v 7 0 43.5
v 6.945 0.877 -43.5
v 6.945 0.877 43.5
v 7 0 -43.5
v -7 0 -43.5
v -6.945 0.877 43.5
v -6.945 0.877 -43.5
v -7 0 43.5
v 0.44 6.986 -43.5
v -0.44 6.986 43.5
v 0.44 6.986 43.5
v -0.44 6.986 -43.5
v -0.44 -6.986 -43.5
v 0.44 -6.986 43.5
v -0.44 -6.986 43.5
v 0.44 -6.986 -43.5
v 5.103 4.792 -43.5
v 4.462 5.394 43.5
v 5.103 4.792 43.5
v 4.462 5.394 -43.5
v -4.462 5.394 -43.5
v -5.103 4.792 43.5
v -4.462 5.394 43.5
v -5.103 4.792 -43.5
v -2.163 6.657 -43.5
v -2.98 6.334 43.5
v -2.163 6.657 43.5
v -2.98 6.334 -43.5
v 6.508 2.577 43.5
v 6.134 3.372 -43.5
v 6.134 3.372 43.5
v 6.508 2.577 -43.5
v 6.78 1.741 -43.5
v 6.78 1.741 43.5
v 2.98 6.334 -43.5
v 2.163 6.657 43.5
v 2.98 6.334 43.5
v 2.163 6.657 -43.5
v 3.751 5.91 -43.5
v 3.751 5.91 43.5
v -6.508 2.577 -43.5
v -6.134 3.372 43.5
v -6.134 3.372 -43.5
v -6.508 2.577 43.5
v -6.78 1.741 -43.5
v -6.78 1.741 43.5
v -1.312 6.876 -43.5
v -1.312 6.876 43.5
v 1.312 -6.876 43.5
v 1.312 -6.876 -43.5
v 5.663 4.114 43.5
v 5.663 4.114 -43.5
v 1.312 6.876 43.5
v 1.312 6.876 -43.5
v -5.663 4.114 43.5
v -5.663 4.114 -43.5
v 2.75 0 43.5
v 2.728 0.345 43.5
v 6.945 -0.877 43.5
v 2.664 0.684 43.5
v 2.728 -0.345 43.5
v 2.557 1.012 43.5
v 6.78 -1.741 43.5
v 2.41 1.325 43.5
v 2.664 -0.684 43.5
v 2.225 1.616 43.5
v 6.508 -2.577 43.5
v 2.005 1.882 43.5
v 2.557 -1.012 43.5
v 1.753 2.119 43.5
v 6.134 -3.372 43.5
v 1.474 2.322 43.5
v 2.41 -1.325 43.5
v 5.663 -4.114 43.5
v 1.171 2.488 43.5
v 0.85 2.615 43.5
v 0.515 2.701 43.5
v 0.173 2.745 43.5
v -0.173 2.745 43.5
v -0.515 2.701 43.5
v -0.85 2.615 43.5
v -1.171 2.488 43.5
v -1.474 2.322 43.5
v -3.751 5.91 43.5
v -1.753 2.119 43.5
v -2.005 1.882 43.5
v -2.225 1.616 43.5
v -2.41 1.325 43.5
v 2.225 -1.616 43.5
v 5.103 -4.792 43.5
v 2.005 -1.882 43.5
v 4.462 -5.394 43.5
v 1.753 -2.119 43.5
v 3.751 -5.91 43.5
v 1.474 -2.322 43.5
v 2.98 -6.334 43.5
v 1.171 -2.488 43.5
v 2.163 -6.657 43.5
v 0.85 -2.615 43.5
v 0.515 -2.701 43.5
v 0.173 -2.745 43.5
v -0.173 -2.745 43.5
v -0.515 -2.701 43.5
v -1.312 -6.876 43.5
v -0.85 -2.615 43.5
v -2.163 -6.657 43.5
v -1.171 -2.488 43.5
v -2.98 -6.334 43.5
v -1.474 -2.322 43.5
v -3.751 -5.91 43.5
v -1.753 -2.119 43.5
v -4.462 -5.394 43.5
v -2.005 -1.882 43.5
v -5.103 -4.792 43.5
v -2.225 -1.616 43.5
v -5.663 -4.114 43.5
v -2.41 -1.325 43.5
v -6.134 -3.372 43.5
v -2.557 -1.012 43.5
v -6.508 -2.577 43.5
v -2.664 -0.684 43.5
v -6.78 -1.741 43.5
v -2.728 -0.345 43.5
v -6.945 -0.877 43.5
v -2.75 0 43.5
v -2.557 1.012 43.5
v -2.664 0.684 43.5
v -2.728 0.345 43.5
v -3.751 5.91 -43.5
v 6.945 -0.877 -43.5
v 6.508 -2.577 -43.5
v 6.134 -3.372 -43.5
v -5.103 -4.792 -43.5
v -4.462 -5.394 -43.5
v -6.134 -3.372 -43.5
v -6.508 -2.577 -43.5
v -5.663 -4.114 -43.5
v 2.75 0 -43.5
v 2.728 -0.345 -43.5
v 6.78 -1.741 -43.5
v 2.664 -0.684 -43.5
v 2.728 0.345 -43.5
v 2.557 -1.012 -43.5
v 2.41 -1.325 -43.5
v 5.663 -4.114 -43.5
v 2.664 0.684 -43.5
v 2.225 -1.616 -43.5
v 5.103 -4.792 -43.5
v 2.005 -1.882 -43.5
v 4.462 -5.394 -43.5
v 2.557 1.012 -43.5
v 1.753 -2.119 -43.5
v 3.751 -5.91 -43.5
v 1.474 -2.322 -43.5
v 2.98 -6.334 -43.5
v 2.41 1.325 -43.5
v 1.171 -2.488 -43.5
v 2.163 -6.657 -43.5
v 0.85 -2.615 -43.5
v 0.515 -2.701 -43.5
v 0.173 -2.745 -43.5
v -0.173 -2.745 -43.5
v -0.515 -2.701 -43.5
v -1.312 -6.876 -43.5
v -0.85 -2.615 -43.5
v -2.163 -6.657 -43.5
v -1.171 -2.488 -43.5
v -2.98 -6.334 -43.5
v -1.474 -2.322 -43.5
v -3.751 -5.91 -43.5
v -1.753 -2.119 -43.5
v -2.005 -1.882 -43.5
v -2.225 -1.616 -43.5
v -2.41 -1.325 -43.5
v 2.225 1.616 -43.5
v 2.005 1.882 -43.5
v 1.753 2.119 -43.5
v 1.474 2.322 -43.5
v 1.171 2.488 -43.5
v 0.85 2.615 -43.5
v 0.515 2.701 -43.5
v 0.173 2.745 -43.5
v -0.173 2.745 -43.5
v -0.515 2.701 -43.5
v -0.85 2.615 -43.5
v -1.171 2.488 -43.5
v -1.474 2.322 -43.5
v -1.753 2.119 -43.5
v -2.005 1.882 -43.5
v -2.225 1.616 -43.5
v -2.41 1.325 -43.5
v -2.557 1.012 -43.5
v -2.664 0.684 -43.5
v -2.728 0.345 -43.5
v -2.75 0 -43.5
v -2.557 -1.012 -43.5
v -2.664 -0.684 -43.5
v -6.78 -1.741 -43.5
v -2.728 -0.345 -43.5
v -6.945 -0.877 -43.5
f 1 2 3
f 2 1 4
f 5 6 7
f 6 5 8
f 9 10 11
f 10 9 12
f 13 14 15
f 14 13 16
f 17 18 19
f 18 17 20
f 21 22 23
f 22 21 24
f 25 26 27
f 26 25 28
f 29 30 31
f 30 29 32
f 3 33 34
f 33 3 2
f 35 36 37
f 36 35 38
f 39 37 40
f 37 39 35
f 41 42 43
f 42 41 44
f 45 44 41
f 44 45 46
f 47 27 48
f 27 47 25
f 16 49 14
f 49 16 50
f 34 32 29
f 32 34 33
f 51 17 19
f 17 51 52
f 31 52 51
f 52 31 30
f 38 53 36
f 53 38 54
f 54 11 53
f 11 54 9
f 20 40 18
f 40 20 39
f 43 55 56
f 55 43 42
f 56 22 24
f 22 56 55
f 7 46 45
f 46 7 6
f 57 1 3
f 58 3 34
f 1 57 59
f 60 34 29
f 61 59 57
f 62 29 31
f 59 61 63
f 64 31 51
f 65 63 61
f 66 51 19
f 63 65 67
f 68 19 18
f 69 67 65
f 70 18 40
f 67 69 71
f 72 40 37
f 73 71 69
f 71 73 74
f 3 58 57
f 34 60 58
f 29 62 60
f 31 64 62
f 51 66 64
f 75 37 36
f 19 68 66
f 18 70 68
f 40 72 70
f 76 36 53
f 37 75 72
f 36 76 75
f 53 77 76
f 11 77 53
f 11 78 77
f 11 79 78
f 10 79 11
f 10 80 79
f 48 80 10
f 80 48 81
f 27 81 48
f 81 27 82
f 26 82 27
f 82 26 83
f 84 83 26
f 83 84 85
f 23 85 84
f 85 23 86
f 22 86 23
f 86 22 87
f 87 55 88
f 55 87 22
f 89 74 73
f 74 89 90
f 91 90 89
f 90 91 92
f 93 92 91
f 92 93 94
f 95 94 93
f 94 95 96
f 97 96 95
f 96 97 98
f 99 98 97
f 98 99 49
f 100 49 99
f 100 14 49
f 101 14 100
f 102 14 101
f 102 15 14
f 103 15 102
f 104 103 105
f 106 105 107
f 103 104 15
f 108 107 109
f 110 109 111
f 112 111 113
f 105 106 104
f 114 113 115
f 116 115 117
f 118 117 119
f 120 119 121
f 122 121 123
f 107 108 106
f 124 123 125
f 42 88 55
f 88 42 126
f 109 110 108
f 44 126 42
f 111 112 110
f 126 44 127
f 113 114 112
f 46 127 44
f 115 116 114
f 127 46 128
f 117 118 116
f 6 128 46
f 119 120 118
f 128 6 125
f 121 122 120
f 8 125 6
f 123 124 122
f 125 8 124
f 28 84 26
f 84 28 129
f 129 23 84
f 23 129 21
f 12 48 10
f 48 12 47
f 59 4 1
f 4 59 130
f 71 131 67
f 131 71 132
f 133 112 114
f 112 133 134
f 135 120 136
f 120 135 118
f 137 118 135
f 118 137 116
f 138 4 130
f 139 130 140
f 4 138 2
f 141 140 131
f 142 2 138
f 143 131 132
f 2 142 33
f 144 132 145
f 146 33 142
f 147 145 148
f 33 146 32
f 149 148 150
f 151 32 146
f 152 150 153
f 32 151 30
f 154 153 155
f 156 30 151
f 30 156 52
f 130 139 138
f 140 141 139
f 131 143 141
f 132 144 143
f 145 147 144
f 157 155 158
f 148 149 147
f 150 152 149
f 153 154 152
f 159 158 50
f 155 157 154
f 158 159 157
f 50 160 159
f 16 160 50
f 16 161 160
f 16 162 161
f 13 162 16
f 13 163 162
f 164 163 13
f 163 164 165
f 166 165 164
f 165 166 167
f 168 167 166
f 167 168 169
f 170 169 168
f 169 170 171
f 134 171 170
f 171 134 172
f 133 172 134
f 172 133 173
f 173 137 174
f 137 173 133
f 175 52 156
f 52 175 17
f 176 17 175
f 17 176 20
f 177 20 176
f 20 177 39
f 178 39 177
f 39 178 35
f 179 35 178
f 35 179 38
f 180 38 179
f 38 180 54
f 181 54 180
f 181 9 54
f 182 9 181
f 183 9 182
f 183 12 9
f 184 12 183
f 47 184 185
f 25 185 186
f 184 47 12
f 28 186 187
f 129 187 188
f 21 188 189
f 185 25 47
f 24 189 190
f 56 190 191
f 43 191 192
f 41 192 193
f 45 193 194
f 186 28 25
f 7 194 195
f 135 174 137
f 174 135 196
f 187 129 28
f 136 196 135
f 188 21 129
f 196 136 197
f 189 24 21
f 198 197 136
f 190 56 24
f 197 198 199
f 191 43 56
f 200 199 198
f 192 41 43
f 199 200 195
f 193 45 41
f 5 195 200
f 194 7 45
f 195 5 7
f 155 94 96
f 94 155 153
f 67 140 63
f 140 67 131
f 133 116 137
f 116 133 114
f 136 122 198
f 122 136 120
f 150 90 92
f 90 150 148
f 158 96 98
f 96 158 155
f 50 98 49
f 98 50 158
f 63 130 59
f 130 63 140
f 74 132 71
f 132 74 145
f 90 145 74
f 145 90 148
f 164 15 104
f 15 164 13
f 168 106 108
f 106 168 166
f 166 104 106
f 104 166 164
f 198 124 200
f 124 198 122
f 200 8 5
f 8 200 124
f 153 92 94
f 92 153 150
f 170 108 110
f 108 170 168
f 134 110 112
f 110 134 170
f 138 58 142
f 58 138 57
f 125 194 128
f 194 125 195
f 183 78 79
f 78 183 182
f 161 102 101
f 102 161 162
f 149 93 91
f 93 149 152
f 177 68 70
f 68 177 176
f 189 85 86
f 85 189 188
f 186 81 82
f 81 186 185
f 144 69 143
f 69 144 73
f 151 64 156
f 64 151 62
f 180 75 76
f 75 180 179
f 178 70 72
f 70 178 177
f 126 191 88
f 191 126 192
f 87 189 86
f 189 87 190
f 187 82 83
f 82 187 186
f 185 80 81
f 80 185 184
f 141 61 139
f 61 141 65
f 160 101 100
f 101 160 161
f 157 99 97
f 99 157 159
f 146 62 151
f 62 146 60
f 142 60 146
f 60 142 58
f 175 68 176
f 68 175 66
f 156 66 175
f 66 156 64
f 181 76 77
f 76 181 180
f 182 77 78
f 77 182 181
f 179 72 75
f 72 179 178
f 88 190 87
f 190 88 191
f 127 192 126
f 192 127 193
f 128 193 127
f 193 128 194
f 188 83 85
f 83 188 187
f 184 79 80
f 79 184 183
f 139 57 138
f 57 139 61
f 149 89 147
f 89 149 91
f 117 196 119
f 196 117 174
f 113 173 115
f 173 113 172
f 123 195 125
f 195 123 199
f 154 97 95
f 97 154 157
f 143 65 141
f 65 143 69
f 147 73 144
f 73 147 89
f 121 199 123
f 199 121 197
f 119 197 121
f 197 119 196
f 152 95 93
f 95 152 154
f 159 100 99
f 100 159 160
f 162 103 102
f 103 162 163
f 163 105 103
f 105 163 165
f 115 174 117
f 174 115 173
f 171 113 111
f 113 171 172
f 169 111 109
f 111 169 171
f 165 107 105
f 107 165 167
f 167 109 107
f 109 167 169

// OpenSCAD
$fn = 50;


difference() {
	union() {
		translate(v = [0, 0, -43.5000000000]) {
			cylinder(h = 87, r = 7.0000000000);
		}
	}
	union() {
		translate(v = [0, 0, -100.0000000000]) {
			cylinder(h = 200, r = 2.7500000000);
		}
	}
}
